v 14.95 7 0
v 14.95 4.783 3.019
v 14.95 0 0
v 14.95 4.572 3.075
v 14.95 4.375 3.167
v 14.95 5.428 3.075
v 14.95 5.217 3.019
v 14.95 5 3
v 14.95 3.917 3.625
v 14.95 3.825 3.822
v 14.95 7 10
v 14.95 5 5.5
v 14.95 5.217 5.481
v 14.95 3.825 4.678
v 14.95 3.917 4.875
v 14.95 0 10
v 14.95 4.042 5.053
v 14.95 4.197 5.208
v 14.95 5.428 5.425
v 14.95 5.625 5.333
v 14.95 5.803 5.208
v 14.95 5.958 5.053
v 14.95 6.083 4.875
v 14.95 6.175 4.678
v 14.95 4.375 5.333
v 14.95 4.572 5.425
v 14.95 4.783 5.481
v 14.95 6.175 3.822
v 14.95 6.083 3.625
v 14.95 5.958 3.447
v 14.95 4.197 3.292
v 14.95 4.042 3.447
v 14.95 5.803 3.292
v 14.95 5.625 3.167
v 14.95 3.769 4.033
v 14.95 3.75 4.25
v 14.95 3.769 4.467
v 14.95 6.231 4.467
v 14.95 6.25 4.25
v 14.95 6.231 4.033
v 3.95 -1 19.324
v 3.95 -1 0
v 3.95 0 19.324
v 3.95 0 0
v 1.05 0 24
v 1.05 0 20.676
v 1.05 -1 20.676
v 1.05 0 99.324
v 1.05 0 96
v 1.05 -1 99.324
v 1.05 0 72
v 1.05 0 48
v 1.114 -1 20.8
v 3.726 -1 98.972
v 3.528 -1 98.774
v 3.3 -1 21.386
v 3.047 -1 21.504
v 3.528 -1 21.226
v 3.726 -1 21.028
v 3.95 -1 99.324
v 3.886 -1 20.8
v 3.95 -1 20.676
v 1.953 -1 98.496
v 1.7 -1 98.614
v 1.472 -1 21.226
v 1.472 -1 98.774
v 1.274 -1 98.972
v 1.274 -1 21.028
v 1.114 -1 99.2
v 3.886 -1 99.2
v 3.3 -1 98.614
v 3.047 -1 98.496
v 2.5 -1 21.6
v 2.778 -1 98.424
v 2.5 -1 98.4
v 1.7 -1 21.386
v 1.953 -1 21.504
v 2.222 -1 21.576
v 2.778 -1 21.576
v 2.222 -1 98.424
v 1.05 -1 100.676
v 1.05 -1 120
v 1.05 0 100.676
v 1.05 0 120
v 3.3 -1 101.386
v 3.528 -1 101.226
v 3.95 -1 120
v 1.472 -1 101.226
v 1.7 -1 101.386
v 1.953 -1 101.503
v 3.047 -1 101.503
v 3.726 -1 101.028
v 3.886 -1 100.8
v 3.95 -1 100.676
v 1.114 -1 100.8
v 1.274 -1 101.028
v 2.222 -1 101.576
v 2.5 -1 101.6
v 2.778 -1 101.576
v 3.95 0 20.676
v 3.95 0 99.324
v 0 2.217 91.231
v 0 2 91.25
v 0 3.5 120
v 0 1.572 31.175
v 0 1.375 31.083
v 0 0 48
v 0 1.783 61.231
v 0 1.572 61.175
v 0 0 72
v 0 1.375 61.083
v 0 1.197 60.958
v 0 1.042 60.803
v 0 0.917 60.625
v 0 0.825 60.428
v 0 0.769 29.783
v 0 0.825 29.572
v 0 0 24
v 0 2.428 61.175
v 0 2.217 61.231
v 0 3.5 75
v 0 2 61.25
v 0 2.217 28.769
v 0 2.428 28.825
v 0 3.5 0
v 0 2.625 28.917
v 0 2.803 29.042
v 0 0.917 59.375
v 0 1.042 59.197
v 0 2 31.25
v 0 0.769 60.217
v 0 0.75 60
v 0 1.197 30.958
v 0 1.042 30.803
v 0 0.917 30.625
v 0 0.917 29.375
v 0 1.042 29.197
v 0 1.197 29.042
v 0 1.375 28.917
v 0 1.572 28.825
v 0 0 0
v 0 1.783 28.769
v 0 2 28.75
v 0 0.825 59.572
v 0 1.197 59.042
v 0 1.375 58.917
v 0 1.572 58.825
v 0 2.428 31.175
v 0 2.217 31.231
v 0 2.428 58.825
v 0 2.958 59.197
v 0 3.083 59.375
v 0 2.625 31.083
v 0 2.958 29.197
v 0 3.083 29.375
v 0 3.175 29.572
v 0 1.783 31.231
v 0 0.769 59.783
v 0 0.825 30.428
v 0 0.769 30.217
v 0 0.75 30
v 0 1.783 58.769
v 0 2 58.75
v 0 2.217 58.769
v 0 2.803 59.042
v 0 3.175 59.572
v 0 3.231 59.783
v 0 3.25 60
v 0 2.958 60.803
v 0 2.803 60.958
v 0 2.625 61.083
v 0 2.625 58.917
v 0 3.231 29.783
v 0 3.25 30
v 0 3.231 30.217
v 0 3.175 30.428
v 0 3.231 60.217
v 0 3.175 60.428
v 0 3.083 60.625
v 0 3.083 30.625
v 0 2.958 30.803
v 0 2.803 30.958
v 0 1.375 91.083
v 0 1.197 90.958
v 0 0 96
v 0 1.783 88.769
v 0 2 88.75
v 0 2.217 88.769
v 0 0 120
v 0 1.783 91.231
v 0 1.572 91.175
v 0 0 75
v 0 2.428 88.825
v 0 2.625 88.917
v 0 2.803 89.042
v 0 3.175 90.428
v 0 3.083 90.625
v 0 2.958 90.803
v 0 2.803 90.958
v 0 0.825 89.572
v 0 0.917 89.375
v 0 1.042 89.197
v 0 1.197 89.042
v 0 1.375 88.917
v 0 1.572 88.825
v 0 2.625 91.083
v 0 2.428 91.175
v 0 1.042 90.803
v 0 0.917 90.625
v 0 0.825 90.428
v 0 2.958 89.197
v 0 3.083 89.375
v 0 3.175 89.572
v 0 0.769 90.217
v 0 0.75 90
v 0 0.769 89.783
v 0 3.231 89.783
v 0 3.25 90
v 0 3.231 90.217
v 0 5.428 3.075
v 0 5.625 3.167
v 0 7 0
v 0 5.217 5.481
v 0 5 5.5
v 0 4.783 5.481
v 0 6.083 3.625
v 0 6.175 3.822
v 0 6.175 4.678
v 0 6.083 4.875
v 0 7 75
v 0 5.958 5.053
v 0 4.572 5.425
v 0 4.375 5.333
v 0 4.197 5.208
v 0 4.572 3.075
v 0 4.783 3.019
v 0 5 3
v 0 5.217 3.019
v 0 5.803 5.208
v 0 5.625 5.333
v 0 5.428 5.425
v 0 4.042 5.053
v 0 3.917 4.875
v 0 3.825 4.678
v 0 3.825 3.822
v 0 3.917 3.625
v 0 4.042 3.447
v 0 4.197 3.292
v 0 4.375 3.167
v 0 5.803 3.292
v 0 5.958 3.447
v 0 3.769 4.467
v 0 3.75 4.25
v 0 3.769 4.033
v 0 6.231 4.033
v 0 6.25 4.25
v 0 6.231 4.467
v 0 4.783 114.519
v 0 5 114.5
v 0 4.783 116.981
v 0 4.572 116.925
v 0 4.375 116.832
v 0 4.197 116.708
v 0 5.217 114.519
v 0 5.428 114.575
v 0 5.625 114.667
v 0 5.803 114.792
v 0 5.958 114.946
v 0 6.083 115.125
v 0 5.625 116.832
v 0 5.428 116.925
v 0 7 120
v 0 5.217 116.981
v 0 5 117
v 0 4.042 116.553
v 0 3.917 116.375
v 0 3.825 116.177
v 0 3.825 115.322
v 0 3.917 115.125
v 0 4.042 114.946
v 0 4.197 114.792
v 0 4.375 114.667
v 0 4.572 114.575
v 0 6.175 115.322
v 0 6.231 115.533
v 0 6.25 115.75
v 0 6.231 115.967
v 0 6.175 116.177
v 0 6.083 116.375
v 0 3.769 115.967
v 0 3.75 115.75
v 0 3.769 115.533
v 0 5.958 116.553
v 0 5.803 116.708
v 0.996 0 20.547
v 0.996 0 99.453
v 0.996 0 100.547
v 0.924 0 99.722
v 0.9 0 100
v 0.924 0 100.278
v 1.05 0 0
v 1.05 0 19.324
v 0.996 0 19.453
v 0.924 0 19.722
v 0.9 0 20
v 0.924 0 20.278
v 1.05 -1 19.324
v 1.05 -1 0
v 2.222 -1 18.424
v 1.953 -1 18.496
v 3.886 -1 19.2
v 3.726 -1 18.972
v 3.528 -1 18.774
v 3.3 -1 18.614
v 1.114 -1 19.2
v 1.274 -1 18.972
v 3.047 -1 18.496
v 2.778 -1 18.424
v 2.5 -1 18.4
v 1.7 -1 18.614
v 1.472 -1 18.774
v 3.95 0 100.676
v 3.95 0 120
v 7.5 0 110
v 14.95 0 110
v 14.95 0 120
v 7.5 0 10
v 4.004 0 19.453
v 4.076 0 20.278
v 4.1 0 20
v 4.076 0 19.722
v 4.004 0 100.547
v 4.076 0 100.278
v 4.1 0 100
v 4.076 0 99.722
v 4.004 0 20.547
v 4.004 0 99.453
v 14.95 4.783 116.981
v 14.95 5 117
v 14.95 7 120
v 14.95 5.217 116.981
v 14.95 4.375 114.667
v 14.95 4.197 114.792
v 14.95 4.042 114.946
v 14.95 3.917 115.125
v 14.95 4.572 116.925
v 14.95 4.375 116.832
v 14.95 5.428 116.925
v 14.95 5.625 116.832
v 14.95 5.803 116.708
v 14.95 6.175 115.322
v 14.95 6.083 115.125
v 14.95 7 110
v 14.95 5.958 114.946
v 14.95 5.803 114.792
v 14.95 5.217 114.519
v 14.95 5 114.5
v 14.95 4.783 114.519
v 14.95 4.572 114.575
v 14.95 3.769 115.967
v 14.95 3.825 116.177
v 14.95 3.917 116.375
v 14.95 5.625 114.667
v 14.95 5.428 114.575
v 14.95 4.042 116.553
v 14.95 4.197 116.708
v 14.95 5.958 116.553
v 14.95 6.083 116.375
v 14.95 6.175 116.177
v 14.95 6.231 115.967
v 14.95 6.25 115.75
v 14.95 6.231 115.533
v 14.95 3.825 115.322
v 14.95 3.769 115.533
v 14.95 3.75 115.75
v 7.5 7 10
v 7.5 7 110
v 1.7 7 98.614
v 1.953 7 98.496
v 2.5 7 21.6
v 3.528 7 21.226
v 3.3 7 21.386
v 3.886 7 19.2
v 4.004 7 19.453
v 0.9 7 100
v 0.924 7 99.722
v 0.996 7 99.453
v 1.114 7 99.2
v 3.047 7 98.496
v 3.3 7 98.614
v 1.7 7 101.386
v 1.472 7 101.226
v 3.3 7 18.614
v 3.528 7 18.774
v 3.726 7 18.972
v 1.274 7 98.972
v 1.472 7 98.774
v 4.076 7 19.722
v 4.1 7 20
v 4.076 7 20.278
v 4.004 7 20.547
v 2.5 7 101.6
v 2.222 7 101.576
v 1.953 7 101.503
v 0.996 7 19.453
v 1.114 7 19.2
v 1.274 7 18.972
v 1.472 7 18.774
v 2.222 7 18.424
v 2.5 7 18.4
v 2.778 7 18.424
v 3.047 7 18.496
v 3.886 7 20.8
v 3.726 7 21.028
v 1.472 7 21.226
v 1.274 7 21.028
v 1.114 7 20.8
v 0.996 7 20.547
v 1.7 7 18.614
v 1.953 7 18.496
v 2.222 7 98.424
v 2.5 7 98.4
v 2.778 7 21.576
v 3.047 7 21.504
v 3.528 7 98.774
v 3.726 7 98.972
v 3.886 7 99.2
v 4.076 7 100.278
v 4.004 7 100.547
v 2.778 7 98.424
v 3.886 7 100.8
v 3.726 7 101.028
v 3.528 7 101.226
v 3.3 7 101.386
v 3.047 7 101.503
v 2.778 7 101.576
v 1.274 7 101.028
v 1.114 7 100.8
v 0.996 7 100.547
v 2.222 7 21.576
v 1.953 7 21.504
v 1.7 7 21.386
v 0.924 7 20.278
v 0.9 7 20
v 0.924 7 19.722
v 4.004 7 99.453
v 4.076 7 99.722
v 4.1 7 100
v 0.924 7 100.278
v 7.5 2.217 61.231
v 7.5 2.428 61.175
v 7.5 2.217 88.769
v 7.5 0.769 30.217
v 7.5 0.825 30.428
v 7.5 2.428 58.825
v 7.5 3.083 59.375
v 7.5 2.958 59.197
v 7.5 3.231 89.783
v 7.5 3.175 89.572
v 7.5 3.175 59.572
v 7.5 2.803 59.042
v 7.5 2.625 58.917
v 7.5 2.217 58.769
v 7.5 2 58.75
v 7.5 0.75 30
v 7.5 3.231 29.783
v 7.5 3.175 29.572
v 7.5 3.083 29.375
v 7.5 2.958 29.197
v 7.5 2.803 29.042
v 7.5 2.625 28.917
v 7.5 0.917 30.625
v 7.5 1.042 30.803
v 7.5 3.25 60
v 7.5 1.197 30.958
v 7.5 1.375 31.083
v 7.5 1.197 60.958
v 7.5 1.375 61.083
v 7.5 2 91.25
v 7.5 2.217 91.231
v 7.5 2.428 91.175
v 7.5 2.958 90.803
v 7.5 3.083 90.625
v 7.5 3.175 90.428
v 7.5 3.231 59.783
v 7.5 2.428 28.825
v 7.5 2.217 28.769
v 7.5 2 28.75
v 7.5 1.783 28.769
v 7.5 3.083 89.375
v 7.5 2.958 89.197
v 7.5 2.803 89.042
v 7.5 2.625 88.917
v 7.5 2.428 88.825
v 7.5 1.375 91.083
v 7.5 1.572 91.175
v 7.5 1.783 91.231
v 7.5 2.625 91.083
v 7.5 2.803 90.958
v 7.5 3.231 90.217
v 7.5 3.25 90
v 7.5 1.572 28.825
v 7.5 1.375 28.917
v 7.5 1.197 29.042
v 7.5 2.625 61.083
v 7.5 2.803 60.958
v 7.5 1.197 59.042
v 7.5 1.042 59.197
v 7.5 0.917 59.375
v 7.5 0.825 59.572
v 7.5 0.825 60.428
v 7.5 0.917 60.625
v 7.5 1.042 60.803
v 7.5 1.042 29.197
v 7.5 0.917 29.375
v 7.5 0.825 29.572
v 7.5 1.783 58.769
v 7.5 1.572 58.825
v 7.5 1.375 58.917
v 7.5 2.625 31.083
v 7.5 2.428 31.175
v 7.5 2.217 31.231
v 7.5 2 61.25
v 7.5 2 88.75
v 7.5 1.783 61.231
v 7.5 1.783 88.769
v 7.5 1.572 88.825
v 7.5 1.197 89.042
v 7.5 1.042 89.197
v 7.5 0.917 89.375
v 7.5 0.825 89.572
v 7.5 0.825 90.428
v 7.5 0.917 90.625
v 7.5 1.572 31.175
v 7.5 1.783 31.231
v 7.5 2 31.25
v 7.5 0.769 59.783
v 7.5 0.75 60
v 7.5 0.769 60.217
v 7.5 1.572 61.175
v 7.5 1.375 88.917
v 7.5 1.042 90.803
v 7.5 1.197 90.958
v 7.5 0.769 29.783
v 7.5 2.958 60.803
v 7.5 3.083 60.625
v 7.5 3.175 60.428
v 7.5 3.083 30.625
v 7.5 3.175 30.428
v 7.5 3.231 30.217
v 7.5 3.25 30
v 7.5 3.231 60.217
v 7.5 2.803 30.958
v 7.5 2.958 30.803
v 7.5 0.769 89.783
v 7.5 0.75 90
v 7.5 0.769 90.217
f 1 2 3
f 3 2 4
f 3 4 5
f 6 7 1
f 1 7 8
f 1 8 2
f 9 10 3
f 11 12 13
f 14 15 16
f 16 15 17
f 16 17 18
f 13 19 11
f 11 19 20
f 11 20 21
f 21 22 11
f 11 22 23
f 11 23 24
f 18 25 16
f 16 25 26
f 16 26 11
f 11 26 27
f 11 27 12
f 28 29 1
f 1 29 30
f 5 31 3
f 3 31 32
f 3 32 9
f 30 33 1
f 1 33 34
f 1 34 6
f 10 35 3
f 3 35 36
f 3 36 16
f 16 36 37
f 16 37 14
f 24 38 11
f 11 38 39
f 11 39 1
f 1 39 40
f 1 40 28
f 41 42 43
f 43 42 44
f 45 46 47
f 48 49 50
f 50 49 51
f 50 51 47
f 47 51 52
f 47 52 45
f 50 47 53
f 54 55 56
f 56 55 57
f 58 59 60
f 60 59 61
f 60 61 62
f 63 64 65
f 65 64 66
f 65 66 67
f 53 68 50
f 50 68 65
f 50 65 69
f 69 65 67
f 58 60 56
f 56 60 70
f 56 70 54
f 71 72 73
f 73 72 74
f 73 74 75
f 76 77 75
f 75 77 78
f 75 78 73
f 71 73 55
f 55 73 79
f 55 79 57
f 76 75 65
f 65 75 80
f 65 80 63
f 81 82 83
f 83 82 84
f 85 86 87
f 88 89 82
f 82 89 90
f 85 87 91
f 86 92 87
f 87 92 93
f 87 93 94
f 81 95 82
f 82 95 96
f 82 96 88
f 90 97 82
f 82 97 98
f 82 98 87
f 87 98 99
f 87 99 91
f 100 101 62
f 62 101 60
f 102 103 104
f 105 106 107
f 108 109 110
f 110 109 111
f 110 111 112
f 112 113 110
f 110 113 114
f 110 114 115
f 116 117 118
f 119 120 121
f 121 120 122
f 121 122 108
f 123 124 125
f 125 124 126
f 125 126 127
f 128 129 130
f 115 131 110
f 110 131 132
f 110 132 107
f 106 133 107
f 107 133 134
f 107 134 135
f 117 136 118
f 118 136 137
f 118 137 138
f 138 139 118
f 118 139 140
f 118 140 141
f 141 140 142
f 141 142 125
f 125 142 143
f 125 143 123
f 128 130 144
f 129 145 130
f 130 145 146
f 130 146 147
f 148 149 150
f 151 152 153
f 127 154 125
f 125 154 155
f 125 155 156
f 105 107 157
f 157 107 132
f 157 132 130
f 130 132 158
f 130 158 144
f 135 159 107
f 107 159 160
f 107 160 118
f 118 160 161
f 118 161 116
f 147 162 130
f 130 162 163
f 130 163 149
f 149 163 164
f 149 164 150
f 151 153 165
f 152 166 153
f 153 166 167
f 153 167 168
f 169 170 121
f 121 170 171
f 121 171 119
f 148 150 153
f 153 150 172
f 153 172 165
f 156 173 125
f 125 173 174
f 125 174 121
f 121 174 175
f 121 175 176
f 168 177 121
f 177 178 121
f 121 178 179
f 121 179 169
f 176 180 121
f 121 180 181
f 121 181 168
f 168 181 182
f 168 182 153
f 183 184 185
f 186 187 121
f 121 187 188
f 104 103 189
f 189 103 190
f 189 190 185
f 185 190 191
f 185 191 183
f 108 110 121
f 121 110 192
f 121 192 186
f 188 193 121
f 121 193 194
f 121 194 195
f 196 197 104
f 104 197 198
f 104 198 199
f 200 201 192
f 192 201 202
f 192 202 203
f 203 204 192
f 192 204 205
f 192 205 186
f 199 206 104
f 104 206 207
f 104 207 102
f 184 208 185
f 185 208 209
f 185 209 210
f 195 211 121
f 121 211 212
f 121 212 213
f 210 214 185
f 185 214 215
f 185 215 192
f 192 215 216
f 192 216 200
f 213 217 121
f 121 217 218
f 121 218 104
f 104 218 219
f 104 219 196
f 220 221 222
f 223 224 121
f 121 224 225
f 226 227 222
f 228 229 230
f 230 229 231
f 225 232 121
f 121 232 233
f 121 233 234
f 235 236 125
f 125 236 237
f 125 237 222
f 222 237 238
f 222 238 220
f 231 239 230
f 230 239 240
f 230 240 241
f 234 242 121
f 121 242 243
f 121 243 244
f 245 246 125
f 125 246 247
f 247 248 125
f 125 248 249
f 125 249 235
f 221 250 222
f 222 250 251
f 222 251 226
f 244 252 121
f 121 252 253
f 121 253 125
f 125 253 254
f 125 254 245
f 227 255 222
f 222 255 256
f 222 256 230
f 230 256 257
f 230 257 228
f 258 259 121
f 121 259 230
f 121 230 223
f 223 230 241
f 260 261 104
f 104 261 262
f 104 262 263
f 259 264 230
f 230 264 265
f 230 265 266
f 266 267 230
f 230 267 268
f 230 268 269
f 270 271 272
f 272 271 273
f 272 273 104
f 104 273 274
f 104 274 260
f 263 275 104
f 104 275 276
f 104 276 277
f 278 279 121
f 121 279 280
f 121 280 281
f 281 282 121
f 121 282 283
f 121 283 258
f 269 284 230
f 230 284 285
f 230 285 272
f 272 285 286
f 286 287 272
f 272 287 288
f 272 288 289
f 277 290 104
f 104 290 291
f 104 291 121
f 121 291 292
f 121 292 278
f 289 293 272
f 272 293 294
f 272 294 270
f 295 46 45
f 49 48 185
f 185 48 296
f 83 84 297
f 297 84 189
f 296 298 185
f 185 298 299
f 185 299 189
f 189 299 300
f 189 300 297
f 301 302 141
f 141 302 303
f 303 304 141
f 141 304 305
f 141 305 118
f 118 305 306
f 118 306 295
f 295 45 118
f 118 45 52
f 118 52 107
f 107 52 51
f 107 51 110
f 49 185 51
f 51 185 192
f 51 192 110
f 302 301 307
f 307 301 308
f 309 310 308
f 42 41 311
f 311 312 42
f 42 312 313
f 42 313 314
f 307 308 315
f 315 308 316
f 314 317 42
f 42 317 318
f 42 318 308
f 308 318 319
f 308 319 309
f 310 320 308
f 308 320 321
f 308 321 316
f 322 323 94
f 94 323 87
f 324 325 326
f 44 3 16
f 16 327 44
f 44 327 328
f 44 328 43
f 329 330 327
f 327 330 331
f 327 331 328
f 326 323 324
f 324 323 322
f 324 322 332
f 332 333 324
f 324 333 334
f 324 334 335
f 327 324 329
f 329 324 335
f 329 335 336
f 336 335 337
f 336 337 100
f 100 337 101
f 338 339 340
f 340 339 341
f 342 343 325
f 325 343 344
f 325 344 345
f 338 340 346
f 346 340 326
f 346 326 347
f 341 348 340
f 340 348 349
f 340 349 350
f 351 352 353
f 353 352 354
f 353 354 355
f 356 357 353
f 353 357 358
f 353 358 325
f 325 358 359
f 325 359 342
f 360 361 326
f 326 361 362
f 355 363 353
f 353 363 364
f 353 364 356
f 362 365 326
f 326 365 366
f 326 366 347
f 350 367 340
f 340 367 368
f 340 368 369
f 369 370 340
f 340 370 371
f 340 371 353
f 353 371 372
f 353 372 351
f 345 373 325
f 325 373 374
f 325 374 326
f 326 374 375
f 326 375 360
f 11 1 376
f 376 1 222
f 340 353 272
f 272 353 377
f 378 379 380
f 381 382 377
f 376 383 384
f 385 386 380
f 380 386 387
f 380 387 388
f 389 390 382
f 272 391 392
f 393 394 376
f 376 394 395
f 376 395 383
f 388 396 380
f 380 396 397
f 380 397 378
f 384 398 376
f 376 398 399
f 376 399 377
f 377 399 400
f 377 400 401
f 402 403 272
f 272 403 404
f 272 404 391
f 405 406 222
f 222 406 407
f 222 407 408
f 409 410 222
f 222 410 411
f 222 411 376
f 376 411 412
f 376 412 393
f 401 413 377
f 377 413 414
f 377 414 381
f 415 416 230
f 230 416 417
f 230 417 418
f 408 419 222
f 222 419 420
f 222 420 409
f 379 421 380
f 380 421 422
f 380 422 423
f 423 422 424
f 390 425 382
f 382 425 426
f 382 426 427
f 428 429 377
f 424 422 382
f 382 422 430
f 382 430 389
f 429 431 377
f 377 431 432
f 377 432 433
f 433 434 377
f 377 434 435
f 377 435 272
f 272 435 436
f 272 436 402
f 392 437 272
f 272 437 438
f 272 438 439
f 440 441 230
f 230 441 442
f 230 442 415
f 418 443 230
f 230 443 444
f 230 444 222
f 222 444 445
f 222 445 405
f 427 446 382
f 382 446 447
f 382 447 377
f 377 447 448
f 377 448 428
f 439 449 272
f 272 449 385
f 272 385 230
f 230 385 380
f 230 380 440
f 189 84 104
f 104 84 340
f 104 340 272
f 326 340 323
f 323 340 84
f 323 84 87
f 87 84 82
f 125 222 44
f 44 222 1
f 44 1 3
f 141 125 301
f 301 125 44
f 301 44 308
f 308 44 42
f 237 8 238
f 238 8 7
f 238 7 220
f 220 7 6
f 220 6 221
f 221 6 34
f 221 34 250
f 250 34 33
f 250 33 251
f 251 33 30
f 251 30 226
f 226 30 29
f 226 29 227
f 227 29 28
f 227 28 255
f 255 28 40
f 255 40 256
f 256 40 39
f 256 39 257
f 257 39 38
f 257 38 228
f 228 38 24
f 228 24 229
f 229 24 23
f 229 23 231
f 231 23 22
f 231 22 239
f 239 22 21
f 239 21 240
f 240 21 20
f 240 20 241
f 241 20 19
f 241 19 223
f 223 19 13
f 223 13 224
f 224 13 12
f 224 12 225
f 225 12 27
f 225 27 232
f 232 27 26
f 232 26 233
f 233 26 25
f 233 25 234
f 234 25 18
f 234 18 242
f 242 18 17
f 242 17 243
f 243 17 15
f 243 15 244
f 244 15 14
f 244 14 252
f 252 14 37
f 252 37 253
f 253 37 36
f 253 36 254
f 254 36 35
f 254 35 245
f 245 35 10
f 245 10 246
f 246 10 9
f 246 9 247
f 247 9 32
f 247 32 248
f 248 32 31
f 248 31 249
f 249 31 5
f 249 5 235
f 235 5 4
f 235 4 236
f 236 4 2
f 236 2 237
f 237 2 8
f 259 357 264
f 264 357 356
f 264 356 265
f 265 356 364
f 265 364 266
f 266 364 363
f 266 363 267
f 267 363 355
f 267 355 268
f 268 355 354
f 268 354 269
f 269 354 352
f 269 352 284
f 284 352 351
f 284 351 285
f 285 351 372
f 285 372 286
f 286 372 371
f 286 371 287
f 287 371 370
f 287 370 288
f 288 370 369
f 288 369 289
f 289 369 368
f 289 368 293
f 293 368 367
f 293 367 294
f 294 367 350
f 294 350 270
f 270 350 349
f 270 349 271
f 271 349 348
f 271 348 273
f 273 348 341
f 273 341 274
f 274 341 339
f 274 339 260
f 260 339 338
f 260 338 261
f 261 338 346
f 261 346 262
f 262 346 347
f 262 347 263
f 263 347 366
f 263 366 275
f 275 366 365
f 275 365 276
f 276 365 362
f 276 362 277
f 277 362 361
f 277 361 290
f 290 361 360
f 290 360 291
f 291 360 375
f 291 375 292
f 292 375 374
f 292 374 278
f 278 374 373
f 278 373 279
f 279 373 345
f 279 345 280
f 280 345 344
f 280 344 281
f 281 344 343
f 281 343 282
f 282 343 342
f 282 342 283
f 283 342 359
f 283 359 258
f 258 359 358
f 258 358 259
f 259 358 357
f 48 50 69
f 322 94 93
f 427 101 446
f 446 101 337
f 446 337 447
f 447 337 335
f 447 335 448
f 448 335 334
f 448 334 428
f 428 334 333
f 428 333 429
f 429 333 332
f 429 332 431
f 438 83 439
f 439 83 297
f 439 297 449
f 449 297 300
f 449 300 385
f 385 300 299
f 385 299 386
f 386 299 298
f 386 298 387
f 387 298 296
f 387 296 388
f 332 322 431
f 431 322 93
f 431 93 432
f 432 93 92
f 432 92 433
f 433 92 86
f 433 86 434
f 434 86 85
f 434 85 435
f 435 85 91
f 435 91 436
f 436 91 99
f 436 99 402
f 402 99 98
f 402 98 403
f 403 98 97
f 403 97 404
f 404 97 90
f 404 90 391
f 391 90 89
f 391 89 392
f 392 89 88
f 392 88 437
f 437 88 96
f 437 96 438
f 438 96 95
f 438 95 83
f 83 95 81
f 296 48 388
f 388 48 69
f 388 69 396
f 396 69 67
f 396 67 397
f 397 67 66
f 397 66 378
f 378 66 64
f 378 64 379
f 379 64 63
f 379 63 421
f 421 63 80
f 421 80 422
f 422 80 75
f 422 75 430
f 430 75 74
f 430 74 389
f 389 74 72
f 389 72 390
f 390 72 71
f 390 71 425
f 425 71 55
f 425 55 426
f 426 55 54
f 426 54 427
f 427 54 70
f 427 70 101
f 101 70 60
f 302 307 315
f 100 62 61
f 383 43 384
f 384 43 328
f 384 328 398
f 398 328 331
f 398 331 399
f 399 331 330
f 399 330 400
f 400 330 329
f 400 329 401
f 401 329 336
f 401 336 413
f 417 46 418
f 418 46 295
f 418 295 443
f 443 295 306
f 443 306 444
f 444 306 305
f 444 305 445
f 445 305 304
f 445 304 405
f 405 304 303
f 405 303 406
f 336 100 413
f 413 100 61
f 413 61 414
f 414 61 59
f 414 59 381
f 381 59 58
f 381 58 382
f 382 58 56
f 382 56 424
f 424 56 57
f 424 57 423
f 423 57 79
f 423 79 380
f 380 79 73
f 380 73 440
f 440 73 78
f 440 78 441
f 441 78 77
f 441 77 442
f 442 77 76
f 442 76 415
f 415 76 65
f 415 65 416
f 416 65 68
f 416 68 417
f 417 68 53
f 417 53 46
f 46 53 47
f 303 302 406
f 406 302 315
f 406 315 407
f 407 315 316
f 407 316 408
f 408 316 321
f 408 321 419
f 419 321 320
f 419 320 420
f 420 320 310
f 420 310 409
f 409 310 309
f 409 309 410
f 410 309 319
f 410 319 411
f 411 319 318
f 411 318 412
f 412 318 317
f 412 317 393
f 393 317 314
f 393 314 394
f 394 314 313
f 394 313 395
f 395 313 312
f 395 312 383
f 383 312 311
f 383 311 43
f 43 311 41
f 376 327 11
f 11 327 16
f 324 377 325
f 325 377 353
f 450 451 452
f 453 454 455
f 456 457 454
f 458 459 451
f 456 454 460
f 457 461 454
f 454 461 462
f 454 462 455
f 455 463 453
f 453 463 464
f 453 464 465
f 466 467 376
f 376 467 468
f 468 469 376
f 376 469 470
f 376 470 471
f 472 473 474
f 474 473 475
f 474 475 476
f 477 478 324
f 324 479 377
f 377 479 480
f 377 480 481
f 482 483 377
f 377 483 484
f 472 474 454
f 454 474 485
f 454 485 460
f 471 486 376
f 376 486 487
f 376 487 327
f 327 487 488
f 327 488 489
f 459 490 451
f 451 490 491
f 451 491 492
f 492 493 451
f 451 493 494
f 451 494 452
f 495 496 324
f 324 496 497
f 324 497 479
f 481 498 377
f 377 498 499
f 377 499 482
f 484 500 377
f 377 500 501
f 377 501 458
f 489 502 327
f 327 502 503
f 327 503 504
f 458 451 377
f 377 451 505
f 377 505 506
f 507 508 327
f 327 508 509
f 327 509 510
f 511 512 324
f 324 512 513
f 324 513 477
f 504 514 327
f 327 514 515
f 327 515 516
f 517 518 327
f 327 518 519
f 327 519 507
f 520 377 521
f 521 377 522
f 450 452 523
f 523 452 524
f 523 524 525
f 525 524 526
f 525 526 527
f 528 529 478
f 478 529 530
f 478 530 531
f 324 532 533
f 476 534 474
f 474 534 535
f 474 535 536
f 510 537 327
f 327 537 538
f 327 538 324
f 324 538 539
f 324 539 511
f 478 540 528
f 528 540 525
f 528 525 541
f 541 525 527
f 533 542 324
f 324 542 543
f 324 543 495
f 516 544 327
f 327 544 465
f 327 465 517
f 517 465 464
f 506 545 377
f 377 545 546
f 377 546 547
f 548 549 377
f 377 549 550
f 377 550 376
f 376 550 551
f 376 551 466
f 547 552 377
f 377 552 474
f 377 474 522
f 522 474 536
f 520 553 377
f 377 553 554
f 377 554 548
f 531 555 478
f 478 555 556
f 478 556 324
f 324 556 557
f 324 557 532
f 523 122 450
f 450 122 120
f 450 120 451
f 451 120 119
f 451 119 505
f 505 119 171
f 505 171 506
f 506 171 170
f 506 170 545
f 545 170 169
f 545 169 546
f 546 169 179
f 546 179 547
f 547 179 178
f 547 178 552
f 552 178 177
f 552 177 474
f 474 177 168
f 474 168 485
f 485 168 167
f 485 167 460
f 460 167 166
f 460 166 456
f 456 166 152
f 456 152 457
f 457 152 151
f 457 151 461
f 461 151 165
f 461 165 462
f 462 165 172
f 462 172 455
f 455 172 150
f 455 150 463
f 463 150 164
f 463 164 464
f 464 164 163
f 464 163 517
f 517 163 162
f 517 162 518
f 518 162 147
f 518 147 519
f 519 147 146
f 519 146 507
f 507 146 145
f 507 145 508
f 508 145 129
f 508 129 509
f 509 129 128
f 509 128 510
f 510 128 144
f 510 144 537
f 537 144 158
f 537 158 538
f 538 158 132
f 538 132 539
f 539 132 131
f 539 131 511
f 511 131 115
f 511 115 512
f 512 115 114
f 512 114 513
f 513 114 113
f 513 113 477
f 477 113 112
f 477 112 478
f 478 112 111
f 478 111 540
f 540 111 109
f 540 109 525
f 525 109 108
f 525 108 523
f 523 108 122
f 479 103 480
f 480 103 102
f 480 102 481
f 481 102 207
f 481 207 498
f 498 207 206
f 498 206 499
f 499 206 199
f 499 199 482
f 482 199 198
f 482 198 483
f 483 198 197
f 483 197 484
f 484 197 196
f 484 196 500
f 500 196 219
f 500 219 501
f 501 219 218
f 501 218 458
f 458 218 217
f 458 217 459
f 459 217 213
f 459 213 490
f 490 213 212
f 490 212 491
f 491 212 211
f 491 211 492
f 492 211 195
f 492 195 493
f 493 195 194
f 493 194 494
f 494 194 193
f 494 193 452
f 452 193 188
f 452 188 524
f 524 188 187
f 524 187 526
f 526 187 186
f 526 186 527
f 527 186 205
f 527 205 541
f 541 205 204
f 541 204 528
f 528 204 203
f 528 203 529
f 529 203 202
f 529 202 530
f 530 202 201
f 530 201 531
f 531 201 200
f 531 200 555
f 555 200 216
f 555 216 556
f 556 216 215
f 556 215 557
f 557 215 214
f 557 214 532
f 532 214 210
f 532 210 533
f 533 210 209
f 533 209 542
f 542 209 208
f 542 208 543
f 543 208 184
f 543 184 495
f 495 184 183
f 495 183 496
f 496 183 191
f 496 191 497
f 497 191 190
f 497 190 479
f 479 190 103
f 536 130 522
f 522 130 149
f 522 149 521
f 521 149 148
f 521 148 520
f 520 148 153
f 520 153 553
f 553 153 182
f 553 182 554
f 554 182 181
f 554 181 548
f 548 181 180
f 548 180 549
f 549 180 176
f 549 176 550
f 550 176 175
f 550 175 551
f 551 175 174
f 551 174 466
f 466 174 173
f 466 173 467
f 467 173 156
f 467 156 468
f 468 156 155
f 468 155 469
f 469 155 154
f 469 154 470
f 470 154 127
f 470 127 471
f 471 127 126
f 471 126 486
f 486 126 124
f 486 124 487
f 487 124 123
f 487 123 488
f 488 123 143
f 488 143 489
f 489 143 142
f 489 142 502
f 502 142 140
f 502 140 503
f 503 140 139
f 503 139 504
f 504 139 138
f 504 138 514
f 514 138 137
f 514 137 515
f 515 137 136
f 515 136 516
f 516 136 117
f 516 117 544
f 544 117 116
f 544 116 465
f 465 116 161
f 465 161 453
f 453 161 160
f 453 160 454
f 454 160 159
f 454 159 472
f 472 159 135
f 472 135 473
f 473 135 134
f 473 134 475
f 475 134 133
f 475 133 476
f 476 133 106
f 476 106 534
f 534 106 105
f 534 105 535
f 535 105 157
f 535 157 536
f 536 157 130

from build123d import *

# Parameters (mm, degrees)
MAIN_DEPTH               = 120
ESQUISSE2_R              = 1.25
HOLESFORMOTORBOARD_DEPTH = 15.95
ESQUISSE4_R              = 1.6
HOLESFORMAKERBEAM_DEPTH  = 9
SKETCH1_W                = 100
SKETCH1_H                = 7
POWERBOARDPINHOLES_DEPTH = 7.45
SKETCH2_R                = 1.25
WINDOWFIXHOLES_DEPTH     = 15.95


with BuildPart() as part:
    # Esquisse1 → Main (new body)
    with BuildSketch(Plane.XY):
        Polygon((0, 7), (14.95, 7), (14.95, 0), (3.95, 0), (3.95, -1), (1.05, -1), (1.05, 0), (0, 0), align=None)
    extrude(amount=MAIN_DEPTH)

    # Esquisse2 → HolesForMotorBoard (cut, through all)
    with BuildSketch(Plane(origin=(14.95, 0, 0), x_dir=(0, 0, -1), z_dir=(1, 0, 0))):
        with Locations((-4.25, 5)):
            Circle(ESQUISSE2_R)
        with Locations((-115.75, 5)):
            Circle(ESQUISSE2_R)
    extrude(amount=-HOLESFORMOTORBOARD_DEPTH, mode=Mode.SUBTRACT)

    # Esquisse4 → HolesForMakerBeam (cut, through all)
    with BuildSketch(Plane(origin=(0, -1, 0), x_dir=(-1, 0, 0), z_dir=(0, -1, 0))):
        with Locations((-2.5, -100)):
            Circle(ESQUISSE4_R)
        with Locations((-2.5, -20)):
            Circle(ESQUISSE4_R)
    extrude(amount=-HOLESFORMAKERBEAM_DEPTH, mode=Mode.SUBTRACT)

    # Sketch1 → PowerBoardPinHoles (cut)
    with BuildSketch(Plane(origin=(14.95, 0, 0), x_dir=(0, 0, -1), z_dir=(1, 0, 0))):
        with Locations((-60, 3.5)):
            Rectangle(SKETCH1_W, SKETCH1_H)
    extrude(amount=-POWERBOARDPINHOLES_DEPTH, mode=Mode.SUBTRACT)

    # Sketch2 → WindowFixHoles (cut, through all)
    with BuildSketch(Plane.ZY):
        with Locations((60, 2)):
            Circle(SKETCH2_R)
        with Locations((30, 2)):
            Circle(SKETCH2_R)
        with Locations((90, 2)):
            Circle(SKETCH2_R)
    extrude(amount=-WINDOWFIXHOLES_DEPTH, mode=Mode.SUBTRACT)


solid = part.part
